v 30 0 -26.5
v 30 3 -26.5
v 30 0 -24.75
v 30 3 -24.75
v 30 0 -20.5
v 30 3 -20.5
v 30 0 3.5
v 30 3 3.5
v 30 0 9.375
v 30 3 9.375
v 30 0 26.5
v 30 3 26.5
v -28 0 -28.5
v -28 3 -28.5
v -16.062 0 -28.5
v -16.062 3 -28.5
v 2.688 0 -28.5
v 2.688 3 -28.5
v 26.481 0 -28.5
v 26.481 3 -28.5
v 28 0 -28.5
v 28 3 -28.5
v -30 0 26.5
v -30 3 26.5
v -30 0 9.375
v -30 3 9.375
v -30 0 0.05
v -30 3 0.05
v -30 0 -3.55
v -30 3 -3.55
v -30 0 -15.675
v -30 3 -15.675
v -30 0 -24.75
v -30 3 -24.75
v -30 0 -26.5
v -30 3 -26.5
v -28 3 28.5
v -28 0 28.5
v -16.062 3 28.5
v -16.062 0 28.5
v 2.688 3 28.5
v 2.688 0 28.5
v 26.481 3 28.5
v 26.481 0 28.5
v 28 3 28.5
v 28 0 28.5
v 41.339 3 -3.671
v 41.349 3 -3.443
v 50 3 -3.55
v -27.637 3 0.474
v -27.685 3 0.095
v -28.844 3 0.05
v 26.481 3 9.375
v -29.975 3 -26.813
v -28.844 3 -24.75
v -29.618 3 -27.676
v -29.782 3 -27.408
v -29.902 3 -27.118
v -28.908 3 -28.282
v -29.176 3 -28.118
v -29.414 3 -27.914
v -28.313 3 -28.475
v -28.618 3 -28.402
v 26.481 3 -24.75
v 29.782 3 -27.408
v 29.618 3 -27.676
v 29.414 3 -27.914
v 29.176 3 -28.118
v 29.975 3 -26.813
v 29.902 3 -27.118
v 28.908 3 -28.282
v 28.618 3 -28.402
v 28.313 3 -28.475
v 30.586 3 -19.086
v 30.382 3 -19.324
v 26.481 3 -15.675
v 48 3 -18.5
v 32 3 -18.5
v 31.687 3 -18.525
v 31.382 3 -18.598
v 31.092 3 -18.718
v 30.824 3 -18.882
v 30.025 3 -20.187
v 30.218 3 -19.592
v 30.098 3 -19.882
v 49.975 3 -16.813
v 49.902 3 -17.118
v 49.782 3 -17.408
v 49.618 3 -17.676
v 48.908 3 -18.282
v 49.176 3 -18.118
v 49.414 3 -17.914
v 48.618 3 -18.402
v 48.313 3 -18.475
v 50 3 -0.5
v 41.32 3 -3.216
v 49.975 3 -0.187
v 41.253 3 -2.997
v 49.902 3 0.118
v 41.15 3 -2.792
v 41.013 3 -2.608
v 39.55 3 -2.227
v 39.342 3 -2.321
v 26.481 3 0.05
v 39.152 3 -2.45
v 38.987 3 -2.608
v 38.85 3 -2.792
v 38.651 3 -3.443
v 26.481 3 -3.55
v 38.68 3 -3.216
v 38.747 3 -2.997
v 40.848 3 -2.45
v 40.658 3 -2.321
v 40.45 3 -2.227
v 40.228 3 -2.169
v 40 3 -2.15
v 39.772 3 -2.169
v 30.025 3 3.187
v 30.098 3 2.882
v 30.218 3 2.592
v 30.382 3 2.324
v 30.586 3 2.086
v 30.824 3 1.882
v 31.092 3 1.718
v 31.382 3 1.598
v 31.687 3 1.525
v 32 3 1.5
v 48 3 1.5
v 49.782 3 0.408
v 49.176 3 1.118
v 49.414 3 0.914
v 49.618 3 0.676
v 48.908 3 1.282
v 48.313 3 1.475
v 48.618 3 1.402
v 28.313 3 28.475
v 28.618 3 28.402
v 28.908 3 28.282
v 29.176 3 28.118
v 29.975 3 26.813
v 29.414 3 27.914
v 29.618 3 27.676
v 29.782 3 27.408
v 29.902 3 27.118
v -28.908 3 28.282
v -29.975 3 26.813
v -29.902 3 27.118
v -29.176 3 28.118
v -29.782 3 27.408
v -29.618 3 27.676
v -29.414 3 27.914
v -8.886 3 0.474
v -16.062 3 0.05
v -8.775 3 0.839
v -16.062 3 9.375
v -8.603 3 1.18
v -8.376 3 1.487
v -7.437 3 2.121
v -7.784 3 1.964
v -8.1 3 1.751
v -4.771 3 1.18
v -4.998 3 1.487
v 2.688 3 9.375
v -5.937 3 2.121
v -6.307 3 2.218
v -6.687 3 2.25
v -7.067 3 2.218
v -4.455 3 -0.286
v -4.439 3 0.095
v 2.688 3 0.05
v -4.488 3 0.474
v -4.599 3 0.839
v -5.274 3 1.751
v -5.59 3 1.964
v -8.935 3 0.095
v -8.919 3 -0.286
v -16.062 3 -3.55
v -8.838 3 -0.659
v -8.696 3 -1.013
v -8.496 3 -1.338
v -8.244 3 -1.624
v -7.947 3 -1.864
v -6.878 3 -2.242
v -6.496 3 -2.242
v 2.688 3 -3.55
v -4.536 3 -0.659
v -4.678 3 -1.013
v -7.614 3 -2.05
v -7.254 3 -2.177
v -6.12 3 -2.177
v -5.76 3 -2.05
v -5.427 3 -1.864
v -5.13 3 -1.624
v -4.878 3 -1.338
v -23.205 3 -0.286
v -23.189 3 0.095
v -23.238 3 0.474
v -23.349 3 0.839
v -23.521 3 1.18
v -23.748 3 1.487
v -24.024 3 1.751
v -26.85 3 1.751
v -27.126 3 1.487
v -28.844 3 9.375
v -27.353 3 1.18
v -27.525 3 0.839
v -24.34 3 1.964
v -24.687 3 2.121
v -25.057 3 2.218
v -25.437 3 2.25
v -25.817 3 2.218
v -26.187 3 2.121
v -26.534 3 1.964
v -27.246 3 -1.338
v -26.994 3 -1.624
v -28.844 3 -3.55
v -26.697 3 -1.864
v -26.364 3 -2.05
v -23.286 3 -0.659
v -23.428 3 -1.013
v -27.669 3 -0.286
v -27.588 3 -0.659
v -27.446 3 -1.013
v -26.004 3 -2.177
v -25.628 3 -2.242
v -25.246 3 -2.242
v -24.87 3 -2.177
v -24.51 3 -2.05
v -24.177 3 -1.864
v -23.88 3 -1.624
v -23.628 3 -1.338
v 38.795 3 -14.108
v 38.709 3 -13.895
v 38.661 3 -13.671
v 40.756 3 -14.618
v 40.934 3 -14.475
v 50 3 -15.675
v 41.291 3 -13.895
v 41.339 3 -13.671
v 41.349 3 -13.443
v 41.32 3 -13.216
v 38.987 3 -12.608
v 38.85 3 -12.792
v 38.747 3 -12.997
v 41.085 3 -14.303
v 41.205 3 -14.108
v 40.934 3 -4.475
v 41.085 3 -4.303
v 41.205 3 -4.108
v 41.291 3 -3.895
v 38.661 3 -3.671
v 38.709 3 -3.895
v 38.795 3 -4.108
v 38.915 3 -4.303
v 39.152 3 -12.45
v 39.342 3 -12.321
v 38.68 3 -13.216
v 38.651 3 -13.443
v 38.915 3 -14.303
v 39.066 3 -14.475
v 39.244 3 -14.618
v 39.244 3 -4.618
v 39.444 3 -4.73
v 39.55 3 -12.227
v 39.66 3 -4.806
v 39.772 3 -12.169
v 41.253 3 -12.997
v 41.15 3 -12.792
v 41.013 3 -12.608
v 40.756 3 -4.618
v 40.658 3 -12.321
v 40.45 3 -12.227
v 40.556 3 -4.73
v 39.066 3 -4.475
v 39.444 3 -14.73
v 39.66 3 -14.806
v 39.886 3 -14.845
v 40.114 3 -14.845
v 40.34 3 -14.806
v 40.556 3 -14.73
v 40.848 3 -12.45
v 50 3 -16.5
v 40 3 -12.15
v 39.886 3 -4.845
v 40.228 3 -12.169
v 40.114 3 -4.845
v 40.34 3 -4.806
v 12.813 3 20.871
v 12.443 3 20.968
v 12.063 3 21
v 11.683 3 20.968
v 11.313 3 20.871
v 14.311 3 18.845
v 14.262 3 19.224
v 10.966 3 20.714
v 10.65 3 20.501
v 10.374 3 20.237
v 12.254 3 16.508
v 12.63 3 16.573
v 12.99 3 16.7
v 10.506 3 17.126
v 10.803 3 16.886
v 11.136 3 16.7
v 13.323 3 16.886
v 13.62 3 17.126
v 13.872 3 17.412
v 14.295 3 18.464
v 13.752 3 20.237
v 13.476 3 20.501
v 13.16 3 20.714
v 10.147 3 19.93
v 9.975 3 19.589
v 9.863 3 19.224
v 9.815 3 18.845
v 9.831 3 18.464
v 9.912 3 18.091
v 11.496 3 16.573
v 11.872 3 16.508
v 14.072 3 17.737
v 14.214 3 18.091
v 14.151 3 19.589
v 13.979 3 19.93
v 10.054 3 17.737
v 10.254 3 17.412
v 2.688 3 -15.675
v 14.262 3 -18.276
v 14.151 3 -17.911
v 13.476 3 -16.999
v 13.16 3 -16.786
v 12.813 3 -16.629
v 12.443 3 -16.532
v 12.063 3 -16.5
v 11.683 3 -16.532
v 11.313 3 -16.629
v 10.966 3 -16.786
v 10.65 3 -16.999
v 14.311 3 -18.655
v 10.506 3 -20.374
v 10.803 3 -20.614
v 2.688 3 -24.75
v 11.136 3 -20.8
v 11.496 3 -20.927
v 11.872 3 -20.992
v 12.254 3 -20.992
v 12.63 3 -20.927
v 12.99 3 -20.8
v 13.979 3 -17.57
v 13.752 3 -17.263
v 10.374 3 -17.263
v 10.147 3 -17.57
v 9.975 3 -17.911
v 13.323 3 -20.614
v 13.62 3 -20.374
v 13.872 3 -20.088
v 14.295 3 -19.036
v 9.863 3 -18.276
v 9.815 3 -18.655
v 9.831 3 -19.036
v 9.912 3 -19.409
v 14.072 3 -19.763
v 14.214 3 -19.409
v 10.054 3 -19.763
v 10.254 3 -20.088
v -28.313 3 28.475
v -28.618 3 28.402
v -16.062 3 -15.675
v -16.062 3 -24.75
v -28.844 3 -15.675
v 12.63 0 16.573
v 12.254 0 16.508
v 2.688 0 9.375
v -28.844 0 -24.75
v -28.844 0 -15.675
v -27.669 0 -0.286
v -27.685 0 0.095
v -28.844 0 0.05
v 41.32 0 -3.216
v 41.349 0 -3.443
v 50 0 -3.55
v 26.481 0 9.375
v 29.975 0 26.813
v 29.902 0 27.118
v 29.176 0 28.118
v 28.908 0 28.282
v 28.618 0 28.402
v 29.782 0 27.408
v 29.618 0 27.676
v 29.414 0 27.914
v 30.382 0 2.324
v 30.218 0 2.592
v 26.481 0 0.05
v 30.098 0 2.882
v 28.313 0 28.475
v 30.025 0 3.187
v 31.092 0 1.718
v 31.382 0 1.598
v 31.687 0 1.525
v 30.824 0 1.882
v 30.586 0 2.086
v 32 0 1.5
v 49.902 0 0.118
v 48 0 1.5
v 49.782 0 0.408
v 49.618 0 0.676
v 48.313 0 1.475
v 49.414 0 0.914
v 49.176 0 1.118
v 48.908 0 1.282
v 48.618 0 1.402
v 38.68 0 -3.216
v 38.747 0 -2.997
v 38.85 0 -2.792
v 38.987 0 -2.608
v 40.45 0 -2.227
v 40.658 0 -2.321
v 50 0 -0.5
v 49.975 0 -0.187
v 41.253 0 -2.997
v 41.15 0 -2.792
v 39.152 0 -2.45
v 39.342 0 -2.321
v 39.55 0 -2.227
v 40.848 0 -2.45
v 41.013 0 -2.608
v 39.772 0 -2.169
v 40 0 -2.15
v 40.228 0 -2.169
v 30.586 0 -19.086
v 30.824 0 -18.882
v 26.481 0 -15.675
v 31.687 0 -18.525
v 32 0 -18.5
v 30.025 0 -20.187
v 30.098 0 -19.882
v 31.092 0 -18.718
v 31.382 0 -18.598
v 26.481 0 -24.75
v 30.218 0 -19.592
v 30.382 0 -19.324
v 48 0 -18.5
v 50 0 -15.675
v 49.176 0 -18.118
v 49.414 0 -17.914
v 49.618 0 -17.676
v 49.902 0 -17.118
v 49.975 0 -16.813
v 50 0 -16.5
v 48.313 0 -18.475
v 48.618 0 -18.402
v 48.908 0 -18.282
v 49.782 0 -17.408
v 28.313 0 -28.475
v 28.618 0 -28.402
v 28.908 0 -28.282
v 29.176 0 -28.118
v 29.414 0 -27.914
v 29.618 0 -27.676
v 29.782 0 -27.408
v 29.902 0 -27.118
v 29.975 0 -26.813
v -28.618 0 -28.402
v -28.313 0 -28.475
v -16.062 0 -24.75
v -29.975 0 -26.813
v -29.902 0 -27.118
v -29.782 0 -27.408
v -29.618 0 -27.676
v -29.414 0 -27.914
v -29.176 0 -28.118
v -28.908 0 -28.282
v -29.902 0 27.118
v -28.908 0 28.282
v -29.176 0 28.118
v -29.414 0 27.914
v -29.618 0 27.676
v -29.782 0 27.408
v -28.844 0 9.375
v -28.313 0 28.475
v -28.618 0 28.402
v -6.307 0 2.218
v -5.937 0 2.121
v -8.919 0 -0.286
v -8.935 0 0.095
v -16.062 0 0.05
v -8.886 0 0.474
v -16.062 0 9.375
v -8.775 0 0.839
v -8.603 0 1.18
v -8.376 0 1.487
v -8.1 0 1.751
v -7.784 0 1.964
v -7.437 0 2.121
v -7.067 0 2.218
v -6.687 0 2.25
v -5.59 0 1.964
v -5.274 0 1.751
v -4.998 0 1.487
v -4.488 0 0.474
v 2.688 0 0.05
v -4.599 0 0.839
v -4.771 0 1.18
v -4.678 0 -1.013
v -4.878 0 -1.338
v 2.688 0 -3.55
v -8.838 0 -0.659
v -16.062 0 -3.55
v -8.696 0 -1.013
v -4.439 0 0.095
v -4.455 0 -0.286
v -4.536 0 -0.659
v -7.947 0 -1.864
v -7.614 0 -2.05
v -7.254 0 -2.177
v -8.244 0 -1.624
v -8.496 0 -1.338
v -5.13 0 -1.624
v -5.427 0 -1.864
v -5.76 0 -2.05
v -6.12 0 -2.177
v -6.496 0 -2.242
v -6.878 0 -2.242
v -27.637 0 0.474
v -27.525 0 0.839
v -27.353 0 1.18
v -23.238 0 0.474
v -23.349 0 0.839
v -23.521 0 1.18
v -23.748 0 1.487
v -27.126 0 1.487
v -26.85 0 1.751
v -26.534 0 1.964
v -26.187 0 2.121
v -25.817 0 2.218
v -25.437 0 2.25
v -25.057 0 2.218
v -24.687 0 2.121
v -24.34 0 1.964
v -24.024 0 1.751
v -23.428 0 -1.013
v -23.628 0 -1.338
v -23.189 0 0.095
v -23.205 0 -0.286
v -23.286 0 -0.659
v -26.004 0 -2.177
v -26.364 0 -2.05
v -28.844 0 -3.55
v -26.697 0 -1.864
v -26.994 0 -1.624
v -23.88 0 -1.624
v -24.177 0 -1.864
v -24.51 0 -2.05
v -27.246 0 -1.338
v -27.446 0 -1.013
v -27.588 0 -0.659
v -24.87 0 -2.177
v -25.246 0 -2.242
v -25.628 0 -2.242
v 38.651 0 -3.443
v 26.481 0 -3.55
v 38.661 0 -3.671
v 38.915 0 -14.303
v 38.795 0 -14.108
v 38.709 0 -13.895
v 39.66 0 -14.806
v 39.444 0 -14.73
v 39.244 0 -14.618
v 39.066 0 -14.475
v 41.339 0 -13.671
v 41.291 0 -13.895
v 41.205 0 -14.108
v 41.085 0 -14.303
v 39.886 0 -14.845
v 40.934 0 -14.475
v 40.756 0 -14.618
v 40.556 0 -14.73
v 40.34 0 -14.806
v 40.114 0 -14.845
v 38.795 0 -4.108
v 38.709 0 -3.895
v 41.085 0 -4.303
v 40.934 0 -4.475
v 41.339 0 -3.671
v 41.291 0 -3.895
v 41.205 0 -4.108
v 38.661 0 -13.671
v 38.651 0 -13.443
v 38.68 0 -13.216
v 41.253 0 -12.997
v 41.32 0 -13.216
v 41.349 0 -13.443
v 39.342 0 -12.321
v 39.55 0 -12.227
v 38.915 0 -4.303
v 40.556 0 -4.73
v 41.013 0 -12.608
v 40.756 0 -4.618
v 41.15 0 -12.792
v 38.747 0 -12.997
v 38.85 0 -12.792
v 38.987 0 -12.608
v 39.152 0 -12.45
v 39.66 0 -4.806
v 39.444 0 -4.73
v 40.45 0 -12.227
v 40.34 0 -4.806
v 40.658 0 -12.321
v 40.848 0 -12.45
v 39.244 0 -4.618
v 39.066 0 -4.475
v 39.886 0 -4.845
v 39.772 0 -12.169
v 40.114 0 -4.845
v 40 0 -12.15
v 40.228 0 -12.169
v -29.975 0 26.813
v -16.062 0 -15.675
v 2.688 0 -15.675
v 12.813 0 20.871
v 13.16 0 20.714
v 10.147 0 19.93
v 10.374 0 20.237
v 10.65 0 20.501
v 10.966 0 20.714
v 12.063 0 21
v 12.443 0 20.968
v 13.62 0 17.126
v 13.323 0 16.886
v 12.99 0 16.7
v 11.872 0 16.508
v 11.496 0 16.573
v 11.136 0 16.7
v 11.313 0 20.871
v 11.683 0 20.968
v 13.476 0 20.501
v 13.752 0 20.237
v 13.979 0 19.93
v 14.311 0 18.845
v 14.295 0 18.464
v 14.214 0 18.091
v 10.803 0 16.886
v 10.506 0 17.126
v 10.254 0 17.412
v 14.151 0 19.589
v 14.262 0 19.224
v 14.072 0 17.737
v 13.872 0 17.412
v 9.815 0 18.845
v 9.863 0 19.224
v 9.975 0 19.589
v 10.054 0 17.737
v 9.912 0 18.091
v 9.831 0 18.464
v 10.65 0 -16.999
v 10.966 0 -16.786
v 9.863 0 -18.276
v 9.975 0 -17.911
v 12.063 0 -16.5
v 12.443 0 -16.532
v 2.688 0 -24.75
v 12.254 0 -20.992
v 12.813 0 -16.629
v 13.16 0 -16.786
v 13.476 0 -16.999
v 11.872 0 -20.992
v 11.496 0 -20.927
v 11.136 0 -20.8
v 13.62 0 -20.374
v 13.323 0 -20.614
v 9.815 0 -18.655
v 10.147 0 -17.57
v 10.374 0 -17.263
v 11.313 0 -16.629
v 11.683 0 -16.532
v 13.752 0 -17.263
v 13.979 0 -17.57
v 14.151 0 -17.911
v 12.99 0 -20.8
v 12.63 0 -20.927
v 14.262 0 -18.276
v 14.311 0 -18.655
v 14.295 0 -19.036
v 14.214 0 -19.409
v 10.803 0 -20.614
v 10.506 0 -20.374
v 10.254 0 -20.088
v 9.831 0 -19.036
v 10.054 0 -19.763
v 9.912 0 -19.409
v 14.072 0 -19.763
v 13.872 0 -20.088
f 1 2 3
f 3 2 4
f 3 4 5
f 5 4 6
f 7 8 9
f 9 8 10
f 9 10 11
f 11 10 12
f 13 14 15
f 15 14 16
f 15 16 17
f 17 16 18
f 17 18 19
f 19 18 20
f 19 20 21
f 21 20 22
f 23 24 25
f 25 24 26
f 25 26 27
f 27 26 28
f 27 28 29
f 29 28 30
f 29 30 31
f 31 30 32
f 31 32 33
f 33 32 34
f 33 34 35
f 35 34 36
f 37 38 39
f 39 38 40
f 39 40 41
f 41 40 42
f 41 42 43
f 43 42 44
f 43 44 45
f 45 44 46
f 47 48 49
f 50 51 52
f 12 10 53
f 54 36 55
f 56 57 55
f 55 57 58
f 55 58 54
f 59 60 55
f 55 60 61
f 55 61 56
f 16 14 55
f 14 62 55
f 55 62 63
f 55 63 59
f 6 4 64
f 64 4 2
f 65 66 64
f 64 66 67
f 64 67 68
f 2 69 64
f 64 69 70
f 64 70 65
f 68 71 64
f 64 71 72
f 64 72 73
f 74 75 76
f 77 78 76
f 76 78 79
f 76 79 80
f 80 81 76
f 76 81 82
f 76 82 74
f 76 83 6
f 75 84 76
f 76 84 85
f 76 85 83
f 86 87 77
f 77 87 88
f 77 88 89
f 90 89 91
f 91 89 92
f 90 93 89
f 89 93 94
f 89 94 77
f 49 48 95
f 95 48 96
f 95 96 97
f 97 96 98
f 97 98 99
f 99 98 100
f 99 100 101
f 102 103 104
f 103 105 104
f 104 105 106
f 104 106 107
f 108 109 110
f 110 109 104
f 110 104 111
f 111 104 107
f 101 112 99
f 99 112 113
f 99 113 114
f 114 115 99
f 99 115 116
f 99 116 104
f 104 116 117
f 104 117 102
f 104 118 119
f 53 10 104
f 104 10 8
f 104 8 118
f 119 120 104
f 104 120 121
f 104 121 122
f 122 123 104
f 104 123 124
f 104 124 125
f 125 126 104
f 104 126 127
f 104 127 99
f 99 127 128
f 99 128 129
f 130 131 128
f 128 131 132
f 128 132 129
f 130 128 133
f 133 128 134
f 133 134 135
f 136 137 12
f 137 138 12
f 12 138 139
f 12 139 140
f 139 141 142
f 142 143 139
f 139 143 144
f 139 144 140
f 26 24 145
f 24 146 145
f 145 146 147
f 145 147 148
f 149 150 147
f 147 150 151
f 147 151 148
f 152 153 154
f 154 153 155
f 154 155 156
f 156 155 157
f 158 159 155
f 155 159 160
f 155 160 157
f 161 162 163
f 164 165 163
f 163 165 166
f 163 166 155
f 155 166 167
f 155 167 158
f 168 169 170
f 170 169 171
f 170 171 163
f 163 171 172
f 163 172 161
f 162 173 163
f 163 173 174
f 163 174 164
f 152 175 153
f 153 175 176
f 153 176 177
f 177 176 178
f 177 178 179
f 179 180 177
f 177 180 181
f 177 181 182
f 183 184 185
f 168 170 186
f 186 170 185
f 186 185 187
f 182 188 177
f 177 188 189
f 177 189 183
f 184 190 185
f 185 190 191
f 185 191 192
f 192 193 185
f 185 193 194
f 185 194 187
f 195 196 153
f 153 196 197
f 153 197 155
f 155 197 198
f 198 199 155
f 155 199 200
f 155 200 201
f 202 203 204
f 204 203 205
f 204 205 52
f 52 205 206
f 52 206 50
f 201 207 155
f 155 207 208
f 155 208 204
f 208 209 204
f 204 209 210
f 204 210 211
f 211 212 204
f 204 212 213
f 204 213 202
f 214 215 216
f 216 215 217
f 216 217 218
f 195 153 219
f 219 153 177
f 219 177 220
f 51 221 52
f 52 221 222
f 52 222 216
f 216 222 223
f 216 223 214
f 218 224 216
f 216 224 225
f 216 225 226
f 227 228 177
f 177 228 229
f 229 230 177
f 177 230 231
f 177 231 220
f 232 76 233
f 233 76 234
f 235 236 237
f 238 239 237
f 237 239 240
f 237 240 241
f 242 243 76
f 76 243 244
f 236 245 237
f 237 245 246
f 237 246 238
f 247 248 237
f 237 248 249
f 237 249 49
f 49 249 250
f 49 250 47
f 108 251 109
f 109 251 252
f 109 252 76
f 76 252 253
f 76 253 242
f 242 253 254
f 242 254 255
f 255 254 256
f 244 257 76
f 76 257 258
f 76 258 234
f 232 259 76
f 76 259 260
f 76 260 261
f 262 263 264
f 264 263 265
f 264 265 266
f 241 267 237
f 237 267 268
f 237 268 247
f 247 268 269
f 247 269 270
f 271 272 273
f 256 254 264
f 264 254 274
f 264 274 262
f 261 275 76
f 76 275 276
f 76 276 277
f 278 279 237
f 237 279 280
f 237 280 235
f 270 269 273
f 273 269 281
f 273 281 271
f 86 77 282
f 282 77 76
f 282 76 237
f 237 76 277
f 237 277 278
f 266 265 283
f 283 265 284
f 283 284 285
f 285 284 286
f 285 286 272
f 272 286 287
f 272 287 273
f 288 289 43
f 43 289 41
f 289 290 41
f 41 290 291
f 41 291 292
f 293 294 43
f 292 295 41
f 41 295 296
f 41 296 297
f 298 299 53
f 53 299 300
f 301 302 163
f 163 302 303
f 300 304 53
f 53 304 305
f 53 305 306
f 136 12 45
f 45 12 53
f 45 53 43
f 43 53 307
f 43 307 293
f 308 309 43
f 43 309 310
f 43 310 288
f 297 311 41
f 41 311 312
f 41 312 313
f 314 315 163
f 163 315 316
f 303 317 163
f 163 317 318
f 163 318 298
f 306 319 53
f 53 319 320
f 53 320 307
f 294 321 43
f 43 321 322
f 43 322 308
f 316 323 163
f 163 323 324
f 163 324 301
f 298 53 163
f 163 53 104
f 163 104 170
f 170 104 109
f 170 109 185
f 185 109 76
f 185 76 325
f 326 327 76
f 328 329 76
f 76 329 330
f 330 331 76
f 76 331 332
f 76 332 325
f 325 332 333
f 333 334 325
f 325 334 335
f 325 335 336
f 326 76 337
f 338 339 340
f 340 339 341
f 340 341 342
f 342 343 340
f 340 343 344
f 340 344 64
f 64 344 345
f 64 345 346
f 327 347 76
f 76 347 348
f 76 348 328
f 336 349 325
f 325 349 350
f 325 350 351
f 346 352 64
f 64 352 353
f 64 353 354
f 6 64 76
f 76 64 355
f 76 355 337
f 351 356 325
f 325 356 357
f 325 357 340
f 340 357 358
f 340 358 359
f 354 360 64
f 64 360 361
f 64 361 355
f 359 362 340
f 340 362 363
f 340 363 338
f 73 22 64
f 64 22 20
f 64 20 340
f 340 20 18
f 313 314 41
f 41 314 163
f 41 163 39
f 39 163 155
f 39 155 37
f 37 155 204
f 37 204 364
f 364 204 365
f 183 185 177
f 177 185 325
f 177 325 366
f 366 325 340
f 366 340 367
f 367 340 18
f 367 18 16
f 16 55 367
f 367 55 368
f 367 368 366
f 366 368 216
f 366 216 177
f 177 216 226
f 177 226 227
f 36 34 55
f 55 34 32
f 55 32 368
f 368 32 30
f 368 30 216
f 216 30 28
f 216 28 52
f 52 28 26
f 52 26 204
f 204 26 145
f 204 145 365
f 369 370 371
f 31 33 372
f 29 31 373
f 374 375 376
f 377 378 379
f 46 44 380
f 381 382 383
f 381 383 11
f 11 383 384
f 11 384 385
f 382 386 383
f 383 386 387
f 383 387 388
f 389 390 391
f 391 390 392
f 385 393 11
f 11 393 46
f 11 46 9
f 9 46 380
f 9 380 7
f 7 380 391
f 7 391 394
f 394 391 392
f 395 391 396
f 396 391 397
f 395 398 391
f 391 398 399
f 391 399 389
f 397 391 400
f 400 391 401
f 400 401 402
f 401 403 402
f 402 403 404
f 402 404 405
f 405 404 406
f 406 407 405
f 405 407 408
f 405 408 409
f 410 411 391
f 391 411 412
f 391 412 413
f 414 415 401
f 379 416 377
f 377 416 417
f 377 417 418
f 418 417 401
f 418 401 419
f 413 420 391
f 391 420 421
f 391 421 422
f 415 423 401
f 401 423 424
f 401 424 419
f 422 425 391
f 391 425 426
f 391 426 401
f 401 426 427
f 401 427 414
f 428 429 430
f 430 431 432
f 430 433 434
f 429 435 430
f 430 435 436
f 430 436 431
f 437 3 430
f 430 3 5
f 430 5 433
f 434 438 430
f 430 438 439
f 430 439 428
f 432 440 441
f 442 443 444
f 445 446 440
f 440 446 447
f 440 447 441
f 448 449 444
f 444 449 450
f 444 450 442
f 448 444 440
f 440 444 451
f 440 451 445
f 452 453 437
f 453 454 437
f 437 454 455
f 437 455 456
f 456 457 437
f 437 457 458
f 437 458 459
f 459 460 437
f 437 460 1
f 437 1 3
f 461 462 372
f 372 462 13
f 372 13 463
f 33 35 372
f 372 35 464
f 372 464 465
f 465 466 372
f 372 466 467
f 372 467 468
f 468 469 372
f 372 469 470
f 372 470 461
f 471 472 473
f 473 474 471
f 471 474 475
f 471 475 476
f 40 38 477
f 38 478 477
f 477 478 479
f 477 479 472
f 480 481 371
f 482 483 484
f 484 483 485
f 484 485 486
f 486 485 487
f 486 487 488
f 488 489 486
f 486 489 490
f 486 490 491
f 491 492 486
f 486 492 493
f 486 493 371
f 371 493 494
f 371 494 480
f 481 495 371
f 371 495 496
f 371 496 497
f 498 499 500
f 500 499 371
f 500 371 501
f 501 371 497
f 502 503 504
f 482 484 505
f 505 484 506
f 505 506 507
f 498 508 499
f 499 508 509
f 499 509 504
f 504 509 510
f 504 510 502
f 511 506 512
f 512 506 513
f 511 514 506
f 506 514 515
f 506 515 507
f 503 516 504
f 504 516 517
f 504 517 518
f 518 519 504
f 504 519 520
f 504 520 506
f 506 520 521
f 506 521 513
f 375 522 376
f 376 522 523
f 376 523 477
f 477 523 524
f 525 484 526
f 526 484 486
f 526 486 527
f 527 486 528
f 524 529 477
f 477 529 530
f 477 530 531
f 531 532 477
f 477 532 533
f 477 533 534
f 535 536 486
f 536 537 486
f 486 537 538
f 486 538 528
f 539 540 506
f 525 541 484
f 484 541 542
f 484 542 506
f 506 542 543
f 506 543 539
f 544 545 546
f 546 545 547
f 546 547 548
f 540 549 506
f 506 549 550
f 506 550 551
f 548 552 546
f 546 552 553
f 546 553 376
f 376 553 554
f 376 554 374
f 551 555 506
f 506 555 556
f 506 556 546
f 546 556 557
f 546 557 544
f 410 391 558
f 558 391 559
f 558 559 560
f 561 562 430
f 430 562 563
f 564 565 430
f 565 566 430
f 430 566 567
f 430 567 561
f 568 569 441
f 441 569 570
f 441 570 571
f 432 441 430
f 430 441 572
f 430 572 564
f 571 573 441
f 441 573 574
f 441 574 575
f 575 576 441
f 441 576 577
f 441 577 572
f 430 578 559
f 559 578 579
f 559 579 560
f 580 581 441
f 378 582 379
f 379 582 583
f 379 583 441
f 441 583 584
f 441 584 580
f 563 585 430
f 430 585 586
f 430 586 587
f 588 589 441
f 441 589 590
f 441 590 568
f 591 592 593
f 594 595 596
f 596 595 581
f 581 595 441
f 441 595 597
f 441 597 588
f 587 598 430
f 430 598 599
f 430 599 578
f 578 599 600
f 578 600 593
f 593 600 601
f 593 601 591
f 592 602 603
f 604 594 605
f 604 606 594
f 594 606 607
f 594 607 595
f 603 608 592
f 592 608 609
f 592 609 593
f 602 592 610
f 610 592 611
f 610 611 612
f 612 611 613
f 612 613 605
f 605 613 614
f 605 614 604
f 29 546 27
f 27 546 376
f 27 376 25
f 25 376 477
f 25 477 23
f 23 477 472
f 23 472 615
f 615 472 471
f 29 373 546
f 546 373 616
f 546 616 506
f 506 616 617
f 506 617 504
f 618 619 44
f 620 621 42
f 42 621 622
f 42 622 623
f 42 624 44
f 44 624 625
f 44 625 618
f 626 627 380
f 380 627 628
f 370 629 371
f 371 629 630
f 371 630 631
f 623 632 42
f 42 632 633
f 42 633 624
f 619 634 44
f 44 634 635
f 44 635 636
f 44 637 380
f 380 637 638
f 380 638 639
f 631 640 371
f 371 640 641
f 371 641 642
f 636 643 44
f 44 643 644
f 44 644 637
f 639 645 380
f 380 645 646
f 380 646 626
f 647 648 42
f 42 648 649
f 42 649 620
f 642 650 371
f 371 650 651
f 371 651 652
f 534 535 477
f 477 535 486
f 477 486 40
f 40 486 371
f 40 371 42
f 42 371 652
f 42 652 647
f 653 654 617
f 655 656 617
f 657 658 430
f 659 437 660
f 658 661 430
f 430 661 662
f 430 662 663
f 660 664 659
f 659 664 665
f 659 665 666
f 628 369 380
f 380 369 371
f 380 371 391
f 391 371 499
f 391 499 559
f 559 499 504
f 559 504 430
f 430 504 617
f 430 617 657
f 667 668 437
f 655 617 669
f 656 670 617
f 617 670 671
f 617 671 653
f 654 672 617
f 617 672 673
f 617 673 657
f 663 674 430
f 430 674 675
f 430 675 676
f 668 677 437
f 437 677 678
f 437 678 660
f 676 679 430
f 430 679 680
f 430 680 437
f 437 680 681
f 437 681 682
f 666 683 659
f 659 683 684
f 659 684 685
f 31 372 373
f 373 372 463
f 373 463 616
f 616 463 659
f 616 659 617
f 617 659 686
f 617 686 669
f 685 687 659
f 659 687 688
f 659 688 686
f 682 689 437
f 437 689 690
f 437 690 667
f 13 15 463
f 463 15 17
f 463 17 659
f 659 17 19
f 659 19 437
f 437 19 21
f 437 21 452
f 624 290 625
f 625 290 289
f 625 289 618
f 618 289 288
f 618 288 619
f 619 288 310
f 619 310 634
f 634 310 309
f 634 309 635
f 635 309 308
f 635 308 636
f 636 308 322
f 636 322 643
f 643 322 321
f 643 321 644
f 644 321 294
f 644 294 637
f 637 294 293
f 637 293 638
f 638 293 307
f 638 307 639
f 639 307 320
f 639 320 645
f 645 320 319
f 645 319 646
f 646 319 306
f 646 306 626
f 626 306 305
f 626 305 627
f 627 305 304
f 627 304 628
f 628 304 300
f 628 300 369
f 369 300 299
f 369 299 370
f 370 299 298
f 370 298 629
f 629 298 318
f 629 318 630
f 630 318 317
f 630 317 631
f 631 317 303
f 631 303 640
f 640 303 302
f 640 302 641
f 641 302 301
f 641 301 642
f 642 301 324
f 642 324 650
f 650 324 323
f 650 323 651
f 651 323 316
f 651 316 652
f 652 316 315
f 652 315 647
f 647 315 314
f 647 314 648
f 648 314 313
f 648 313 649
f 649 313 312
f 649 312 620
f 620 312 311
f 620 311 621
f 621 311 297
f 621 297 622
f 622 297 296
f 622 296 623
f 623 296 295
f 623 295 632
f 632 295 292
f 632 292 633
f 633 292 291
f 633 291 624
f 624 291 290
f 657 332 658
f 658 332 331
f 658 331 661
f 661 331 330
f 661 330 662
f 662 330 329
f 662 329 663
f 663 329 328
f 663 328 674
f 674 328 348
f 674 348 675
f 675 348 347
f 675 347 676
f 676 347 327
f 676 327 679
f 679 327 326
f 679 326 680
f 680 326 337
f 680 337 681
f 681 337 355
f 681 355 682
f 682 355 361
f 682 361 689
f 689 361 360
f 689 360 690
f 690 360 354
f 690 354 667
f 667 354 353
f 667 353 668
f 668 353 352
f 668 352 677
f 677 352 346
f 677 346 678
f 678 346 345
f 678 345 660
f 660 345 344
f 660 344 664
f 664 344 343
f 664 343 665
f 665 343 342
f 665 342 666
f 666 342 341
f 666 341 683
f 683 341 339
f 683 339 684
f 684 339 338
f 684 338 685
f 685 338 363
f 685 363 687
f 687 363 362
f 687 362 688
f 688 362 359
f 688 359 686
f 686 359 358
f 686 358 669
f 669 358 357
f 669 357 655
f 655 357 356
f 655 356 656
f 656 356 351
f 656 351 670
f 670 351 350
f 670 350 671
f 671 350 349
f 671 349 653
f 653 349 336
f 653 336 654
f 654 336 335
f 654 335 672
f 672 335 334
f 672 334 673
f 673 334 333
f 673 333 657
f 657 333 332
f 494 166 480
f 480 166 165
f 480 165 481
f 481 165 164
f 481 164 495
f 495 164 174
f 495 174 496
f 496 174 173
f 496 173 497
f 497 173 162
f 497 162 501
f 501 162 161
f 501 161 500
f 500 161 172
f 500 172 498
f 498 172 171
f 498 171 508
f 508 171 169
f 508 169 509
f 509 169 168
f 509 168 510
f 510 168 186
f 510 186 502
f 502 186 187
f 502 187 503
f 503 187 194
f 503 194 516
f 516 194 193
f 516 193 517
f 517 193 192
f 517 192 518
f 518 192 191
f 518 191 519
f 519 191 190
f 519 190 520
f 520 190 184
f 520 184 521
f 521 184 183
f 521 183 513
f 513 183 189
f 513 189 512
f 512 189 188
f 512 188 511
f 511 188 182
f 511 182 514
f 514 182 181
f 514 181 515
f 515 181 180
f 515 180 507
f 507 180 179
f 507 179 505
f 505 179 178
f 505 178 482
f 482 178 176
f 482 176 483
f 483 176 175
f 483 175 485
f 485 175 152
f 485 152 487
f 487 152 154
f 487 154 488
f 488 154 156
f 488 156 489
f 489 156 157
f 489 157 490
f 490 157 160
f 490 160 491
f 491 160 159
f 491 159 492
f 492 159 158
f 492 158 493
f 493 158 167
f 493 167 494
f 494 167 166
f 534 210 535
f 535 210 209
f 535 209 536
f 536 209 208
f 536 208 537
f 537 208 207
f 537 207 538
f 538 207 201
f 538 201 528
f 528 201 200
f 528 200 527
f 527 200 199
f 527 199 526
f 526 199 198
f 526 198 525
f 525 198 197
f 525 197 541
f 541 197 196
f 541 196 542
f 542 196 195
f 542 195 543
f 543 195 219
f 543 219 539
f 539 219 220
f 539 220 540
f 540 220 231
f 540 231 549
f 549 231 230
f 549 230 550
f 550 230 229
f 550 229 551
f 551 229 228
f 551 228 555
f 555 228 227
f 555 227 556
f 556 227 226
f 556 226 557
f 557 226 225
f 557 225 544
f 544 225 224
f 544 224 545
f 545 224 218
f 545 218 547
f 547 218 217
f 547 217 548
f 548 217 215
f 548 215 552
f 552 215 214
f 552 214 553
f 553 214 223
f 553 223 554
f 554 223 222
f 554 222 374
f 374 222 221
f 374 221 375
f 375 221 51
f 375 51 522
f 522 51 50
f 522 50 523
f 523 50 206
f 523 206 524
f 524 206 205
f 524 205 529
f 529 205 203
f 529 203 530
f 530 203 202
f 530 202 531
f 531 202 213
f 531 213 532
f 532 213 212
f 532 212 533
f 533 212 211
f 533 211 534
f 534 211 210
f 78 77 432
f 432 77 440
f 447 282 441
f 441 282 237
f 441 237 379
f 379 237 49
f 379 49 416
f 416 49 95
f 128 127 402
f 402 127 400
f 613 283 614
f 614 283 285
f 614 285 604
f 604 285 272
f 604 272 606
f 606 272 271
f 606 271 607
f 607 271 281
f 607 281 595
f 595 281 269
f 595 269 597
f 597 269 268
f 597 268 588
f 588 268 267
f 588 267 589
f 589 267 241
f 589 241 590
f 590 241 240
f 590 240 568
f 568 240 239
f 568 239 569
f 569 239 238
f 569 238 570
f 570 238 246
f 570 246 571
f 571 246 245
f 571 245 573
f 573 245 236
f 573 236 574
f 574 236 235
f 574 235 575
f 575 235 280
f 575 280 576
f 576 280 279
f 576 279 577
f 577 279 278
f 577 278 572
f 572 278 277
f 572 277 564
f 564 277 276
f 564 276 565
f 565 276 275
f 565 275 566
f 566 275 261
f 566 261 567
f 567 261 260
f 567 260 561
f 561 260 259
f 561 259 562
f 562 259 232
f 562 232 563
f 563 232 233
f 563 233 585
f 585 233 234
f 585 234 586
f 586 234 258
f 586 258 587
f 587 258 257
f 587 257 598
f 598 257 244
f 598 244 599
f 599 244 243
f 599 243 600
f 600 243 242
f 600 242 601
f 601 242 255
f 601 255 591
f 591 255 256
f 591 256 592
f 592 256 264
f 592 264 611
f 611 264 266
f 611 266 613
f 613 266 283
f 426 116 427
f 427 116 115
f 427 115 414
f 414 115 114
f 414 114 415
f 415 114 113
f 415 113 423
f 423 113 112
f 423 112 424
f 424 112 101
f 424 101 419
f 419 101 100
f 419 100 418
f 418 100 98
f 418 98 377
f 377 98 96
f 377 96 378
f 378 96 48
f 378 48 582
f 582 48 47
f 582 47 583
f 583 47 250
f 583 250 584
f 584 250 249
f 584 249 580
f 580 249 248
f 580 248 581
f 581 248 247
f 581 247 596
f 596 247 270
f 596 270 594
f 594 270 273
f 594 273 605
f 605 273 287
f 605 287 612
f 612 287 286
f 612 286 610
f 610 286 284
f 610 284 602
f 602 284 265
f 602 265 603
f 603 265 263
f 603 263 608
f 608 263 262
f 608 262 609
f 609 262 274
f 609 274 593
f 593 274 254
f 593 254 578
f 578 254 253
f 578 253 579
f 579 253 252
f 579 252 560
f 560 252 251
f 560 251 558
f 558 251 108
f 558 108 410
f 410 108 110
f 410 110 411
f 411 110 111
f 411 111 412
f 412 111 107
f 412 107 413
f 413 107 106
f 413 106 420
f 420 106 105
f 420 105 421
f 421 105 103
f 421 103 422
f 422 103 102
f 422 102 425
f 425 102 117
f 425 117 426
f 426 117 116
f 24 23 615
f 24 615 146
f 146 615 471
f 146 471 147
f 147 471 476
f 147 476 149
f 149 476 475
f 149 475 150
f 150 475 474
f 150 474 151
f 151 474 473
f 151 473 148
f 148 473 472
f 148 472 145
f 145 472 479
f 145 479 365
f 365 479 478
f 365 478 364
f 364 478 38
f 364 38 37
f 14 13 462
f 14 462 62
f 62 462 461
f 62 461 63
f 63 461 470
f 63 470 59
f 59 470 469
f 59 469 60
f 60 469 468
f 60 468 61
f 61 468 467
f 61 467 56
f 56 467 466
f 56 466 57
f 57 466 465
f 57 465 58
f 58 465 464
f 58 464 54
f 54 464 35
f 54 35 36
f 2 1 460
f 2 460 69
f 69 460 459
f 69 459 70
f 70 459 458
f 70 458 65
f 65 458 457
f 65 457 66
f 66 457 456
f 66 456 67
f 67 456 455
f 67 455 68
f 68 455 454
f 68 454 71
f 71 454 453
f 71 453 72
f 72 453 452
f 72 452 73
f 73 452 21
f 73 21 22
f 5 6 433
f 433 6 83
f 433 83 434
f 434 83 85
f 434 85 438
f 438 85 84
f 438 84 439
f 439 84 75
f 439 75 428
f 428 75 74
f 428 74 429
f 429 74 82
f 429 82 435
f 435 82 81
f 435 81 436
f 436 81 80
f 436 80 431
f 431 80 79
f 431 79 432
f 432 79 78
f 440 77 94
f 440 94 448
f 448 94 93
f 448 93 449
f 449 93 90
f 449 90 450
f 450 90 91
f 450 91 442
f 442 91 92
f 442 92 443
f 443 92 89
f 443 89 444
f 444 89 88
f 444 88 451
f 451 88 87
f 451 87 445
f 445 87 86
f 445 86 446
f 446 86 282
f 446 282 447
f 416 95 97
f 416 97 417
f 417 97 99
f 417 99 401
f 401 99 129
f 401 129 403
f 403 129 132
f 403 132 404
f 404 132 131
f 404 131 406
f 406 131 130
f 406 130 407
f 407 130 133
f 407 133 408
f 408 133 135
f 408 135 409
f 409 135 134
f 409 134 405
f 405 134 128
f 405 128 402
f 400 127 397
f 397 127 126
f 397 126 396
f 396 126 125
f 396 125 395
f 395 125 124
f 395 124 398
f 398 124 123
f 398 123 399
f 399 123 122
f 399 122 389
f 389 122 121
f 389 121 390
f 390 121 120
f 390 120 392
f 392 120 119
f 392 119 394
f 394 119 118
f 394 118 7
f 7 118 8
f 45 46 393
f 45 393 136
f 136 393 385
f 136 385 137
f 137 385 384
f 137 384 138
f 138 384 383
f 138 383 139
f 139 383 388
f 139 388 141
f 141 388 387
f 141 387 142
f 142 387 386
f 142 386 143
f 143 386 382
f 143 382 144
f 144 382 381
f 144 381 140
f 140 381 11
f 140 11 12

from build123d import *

# Parameters (mm, degrees)
SKETCH1_W                      = 60
SKETCH1_H                      = 57
BOSS_EXTRUDE1_DEPTH            = 3
F_4_5_4_5_DIAMETER_HOLE1_D     = 4.5
F_4_5_4_5_DIAMETER_HOLE1_DEPTH = 15
F_4_5_4_5_DIAMETER_HOLE1_TIP   = 1.351936393
SKETCH4_W                      = 20
SKETCH4_H                      = 20
BOSS_EXTRUDE2_DEPTH            = 3
F_2_7_2_7_DIAMETER_HOLE1_D     = 2.7
F_2_7_2_7_DIAMETER_HOLE1_DEPTH = 15
F_2_7_2_7_DIAMETER_HOLE1_TIP   = 0.811161836
FILLET1_R                      = 2


with BuildPart() as part:
    # Sketch1 → Boss-Extrude1 (new body)
    with BuildSketch(Plane(origin=(0, 0, 0), x_dir=(1, 0, 0), z_dir=(0, 1, 0))):
        Rectangle(SKETCH1_W, SKETCH1_H)
    extrude(amount=BOSS_EXTRUDE1_DEPTH)

    # Ø4.5 (4.5) Diameter Hole1
    with Locations(Plane(origin=(0, 3, 0), x_dir=(1, 0, 0), z_dir=(0, 1, 0))):
        with Locations((-25.437, 0), (-6.687, 0), (12.063, 18.75), (12.063, -18.75)):
            Hole(F_4_5_4_5_DIAMETER_HOLE1_D / 2, depth=F_4_5_4_5_DIAMETER_HOLE1_DEPTH)
            with Locations((0, 0, -(F_4_5_4_5_DIAMETER_HOLE1_DEPTH + F_4_5_4_5_DIAMETER_HOLE1_TIP / 2))):  # 118° drill point
                Cone(0, F_4_5_4_5_DIAMETER_HOLE1_D / 2, F_4_5_4_5_DIAMETER_HOLE1_TIP, mode=Mode.SUBTRACT)

    # Sketch4 → Boss-Extrude2 (add)
    with BuildSketch(Plane(origin=(0, 3, 0), x_dir=(1, 0, 0), z_dir=(0, 1, 0))):
        with Locations((40, 8.5)):
            Rectangle(SKETCH4_W, SKETCH4_H)
    extrude(amount=-BOSS_EXTRUDE2_DEPTH)

    # Ø2.7 (2.7) Diameter Hole1
    with Locations(Plane(origin=(0, 3, 0), x_dir=(1, 0, 0), z_dir=(0, 1, 0))):
        with Locations((40, 13.5), (40, 3.5)):
            Hole(F_2_7_2_7_DIAMETER_HOLE1_D / 2, depth=F_2_7_2_7_DIAMETER_HOLE1_DEPTH)
            with Locations((0, 0, -(F_2_7_2_7_DIAMETER_HOLE1_DEPTH + F_2_7_2_7_DIAMETER_HOLE1_TIP / 2))):  # 118° drill point
                Cone(0, F_2_7_2_7_DIAMETER_HOLE1_D / 2, F_2_7_2_7_DIAMETER_HOLE1_TIP, mode=Mode.SUBTRACT)

    # Fillet1
    fillet1_edges = [part.edges().sort_by_distance(p)[0] for p in [
        (30, 1.5, 1.5),
        (30, 1.5, -18.5),
        (50, 1.5, -18.5),
        (50, 1.5, 1.5),
        (30, 1.5, 28.5),
        (-30, 1.5, 28.5),
        (-30, 1.5, -28.5),
        (30, 1.5, -28.5),
    ]]
    fillet(fillet1_edges, radius=FILLET1_R)


solid = part.part
